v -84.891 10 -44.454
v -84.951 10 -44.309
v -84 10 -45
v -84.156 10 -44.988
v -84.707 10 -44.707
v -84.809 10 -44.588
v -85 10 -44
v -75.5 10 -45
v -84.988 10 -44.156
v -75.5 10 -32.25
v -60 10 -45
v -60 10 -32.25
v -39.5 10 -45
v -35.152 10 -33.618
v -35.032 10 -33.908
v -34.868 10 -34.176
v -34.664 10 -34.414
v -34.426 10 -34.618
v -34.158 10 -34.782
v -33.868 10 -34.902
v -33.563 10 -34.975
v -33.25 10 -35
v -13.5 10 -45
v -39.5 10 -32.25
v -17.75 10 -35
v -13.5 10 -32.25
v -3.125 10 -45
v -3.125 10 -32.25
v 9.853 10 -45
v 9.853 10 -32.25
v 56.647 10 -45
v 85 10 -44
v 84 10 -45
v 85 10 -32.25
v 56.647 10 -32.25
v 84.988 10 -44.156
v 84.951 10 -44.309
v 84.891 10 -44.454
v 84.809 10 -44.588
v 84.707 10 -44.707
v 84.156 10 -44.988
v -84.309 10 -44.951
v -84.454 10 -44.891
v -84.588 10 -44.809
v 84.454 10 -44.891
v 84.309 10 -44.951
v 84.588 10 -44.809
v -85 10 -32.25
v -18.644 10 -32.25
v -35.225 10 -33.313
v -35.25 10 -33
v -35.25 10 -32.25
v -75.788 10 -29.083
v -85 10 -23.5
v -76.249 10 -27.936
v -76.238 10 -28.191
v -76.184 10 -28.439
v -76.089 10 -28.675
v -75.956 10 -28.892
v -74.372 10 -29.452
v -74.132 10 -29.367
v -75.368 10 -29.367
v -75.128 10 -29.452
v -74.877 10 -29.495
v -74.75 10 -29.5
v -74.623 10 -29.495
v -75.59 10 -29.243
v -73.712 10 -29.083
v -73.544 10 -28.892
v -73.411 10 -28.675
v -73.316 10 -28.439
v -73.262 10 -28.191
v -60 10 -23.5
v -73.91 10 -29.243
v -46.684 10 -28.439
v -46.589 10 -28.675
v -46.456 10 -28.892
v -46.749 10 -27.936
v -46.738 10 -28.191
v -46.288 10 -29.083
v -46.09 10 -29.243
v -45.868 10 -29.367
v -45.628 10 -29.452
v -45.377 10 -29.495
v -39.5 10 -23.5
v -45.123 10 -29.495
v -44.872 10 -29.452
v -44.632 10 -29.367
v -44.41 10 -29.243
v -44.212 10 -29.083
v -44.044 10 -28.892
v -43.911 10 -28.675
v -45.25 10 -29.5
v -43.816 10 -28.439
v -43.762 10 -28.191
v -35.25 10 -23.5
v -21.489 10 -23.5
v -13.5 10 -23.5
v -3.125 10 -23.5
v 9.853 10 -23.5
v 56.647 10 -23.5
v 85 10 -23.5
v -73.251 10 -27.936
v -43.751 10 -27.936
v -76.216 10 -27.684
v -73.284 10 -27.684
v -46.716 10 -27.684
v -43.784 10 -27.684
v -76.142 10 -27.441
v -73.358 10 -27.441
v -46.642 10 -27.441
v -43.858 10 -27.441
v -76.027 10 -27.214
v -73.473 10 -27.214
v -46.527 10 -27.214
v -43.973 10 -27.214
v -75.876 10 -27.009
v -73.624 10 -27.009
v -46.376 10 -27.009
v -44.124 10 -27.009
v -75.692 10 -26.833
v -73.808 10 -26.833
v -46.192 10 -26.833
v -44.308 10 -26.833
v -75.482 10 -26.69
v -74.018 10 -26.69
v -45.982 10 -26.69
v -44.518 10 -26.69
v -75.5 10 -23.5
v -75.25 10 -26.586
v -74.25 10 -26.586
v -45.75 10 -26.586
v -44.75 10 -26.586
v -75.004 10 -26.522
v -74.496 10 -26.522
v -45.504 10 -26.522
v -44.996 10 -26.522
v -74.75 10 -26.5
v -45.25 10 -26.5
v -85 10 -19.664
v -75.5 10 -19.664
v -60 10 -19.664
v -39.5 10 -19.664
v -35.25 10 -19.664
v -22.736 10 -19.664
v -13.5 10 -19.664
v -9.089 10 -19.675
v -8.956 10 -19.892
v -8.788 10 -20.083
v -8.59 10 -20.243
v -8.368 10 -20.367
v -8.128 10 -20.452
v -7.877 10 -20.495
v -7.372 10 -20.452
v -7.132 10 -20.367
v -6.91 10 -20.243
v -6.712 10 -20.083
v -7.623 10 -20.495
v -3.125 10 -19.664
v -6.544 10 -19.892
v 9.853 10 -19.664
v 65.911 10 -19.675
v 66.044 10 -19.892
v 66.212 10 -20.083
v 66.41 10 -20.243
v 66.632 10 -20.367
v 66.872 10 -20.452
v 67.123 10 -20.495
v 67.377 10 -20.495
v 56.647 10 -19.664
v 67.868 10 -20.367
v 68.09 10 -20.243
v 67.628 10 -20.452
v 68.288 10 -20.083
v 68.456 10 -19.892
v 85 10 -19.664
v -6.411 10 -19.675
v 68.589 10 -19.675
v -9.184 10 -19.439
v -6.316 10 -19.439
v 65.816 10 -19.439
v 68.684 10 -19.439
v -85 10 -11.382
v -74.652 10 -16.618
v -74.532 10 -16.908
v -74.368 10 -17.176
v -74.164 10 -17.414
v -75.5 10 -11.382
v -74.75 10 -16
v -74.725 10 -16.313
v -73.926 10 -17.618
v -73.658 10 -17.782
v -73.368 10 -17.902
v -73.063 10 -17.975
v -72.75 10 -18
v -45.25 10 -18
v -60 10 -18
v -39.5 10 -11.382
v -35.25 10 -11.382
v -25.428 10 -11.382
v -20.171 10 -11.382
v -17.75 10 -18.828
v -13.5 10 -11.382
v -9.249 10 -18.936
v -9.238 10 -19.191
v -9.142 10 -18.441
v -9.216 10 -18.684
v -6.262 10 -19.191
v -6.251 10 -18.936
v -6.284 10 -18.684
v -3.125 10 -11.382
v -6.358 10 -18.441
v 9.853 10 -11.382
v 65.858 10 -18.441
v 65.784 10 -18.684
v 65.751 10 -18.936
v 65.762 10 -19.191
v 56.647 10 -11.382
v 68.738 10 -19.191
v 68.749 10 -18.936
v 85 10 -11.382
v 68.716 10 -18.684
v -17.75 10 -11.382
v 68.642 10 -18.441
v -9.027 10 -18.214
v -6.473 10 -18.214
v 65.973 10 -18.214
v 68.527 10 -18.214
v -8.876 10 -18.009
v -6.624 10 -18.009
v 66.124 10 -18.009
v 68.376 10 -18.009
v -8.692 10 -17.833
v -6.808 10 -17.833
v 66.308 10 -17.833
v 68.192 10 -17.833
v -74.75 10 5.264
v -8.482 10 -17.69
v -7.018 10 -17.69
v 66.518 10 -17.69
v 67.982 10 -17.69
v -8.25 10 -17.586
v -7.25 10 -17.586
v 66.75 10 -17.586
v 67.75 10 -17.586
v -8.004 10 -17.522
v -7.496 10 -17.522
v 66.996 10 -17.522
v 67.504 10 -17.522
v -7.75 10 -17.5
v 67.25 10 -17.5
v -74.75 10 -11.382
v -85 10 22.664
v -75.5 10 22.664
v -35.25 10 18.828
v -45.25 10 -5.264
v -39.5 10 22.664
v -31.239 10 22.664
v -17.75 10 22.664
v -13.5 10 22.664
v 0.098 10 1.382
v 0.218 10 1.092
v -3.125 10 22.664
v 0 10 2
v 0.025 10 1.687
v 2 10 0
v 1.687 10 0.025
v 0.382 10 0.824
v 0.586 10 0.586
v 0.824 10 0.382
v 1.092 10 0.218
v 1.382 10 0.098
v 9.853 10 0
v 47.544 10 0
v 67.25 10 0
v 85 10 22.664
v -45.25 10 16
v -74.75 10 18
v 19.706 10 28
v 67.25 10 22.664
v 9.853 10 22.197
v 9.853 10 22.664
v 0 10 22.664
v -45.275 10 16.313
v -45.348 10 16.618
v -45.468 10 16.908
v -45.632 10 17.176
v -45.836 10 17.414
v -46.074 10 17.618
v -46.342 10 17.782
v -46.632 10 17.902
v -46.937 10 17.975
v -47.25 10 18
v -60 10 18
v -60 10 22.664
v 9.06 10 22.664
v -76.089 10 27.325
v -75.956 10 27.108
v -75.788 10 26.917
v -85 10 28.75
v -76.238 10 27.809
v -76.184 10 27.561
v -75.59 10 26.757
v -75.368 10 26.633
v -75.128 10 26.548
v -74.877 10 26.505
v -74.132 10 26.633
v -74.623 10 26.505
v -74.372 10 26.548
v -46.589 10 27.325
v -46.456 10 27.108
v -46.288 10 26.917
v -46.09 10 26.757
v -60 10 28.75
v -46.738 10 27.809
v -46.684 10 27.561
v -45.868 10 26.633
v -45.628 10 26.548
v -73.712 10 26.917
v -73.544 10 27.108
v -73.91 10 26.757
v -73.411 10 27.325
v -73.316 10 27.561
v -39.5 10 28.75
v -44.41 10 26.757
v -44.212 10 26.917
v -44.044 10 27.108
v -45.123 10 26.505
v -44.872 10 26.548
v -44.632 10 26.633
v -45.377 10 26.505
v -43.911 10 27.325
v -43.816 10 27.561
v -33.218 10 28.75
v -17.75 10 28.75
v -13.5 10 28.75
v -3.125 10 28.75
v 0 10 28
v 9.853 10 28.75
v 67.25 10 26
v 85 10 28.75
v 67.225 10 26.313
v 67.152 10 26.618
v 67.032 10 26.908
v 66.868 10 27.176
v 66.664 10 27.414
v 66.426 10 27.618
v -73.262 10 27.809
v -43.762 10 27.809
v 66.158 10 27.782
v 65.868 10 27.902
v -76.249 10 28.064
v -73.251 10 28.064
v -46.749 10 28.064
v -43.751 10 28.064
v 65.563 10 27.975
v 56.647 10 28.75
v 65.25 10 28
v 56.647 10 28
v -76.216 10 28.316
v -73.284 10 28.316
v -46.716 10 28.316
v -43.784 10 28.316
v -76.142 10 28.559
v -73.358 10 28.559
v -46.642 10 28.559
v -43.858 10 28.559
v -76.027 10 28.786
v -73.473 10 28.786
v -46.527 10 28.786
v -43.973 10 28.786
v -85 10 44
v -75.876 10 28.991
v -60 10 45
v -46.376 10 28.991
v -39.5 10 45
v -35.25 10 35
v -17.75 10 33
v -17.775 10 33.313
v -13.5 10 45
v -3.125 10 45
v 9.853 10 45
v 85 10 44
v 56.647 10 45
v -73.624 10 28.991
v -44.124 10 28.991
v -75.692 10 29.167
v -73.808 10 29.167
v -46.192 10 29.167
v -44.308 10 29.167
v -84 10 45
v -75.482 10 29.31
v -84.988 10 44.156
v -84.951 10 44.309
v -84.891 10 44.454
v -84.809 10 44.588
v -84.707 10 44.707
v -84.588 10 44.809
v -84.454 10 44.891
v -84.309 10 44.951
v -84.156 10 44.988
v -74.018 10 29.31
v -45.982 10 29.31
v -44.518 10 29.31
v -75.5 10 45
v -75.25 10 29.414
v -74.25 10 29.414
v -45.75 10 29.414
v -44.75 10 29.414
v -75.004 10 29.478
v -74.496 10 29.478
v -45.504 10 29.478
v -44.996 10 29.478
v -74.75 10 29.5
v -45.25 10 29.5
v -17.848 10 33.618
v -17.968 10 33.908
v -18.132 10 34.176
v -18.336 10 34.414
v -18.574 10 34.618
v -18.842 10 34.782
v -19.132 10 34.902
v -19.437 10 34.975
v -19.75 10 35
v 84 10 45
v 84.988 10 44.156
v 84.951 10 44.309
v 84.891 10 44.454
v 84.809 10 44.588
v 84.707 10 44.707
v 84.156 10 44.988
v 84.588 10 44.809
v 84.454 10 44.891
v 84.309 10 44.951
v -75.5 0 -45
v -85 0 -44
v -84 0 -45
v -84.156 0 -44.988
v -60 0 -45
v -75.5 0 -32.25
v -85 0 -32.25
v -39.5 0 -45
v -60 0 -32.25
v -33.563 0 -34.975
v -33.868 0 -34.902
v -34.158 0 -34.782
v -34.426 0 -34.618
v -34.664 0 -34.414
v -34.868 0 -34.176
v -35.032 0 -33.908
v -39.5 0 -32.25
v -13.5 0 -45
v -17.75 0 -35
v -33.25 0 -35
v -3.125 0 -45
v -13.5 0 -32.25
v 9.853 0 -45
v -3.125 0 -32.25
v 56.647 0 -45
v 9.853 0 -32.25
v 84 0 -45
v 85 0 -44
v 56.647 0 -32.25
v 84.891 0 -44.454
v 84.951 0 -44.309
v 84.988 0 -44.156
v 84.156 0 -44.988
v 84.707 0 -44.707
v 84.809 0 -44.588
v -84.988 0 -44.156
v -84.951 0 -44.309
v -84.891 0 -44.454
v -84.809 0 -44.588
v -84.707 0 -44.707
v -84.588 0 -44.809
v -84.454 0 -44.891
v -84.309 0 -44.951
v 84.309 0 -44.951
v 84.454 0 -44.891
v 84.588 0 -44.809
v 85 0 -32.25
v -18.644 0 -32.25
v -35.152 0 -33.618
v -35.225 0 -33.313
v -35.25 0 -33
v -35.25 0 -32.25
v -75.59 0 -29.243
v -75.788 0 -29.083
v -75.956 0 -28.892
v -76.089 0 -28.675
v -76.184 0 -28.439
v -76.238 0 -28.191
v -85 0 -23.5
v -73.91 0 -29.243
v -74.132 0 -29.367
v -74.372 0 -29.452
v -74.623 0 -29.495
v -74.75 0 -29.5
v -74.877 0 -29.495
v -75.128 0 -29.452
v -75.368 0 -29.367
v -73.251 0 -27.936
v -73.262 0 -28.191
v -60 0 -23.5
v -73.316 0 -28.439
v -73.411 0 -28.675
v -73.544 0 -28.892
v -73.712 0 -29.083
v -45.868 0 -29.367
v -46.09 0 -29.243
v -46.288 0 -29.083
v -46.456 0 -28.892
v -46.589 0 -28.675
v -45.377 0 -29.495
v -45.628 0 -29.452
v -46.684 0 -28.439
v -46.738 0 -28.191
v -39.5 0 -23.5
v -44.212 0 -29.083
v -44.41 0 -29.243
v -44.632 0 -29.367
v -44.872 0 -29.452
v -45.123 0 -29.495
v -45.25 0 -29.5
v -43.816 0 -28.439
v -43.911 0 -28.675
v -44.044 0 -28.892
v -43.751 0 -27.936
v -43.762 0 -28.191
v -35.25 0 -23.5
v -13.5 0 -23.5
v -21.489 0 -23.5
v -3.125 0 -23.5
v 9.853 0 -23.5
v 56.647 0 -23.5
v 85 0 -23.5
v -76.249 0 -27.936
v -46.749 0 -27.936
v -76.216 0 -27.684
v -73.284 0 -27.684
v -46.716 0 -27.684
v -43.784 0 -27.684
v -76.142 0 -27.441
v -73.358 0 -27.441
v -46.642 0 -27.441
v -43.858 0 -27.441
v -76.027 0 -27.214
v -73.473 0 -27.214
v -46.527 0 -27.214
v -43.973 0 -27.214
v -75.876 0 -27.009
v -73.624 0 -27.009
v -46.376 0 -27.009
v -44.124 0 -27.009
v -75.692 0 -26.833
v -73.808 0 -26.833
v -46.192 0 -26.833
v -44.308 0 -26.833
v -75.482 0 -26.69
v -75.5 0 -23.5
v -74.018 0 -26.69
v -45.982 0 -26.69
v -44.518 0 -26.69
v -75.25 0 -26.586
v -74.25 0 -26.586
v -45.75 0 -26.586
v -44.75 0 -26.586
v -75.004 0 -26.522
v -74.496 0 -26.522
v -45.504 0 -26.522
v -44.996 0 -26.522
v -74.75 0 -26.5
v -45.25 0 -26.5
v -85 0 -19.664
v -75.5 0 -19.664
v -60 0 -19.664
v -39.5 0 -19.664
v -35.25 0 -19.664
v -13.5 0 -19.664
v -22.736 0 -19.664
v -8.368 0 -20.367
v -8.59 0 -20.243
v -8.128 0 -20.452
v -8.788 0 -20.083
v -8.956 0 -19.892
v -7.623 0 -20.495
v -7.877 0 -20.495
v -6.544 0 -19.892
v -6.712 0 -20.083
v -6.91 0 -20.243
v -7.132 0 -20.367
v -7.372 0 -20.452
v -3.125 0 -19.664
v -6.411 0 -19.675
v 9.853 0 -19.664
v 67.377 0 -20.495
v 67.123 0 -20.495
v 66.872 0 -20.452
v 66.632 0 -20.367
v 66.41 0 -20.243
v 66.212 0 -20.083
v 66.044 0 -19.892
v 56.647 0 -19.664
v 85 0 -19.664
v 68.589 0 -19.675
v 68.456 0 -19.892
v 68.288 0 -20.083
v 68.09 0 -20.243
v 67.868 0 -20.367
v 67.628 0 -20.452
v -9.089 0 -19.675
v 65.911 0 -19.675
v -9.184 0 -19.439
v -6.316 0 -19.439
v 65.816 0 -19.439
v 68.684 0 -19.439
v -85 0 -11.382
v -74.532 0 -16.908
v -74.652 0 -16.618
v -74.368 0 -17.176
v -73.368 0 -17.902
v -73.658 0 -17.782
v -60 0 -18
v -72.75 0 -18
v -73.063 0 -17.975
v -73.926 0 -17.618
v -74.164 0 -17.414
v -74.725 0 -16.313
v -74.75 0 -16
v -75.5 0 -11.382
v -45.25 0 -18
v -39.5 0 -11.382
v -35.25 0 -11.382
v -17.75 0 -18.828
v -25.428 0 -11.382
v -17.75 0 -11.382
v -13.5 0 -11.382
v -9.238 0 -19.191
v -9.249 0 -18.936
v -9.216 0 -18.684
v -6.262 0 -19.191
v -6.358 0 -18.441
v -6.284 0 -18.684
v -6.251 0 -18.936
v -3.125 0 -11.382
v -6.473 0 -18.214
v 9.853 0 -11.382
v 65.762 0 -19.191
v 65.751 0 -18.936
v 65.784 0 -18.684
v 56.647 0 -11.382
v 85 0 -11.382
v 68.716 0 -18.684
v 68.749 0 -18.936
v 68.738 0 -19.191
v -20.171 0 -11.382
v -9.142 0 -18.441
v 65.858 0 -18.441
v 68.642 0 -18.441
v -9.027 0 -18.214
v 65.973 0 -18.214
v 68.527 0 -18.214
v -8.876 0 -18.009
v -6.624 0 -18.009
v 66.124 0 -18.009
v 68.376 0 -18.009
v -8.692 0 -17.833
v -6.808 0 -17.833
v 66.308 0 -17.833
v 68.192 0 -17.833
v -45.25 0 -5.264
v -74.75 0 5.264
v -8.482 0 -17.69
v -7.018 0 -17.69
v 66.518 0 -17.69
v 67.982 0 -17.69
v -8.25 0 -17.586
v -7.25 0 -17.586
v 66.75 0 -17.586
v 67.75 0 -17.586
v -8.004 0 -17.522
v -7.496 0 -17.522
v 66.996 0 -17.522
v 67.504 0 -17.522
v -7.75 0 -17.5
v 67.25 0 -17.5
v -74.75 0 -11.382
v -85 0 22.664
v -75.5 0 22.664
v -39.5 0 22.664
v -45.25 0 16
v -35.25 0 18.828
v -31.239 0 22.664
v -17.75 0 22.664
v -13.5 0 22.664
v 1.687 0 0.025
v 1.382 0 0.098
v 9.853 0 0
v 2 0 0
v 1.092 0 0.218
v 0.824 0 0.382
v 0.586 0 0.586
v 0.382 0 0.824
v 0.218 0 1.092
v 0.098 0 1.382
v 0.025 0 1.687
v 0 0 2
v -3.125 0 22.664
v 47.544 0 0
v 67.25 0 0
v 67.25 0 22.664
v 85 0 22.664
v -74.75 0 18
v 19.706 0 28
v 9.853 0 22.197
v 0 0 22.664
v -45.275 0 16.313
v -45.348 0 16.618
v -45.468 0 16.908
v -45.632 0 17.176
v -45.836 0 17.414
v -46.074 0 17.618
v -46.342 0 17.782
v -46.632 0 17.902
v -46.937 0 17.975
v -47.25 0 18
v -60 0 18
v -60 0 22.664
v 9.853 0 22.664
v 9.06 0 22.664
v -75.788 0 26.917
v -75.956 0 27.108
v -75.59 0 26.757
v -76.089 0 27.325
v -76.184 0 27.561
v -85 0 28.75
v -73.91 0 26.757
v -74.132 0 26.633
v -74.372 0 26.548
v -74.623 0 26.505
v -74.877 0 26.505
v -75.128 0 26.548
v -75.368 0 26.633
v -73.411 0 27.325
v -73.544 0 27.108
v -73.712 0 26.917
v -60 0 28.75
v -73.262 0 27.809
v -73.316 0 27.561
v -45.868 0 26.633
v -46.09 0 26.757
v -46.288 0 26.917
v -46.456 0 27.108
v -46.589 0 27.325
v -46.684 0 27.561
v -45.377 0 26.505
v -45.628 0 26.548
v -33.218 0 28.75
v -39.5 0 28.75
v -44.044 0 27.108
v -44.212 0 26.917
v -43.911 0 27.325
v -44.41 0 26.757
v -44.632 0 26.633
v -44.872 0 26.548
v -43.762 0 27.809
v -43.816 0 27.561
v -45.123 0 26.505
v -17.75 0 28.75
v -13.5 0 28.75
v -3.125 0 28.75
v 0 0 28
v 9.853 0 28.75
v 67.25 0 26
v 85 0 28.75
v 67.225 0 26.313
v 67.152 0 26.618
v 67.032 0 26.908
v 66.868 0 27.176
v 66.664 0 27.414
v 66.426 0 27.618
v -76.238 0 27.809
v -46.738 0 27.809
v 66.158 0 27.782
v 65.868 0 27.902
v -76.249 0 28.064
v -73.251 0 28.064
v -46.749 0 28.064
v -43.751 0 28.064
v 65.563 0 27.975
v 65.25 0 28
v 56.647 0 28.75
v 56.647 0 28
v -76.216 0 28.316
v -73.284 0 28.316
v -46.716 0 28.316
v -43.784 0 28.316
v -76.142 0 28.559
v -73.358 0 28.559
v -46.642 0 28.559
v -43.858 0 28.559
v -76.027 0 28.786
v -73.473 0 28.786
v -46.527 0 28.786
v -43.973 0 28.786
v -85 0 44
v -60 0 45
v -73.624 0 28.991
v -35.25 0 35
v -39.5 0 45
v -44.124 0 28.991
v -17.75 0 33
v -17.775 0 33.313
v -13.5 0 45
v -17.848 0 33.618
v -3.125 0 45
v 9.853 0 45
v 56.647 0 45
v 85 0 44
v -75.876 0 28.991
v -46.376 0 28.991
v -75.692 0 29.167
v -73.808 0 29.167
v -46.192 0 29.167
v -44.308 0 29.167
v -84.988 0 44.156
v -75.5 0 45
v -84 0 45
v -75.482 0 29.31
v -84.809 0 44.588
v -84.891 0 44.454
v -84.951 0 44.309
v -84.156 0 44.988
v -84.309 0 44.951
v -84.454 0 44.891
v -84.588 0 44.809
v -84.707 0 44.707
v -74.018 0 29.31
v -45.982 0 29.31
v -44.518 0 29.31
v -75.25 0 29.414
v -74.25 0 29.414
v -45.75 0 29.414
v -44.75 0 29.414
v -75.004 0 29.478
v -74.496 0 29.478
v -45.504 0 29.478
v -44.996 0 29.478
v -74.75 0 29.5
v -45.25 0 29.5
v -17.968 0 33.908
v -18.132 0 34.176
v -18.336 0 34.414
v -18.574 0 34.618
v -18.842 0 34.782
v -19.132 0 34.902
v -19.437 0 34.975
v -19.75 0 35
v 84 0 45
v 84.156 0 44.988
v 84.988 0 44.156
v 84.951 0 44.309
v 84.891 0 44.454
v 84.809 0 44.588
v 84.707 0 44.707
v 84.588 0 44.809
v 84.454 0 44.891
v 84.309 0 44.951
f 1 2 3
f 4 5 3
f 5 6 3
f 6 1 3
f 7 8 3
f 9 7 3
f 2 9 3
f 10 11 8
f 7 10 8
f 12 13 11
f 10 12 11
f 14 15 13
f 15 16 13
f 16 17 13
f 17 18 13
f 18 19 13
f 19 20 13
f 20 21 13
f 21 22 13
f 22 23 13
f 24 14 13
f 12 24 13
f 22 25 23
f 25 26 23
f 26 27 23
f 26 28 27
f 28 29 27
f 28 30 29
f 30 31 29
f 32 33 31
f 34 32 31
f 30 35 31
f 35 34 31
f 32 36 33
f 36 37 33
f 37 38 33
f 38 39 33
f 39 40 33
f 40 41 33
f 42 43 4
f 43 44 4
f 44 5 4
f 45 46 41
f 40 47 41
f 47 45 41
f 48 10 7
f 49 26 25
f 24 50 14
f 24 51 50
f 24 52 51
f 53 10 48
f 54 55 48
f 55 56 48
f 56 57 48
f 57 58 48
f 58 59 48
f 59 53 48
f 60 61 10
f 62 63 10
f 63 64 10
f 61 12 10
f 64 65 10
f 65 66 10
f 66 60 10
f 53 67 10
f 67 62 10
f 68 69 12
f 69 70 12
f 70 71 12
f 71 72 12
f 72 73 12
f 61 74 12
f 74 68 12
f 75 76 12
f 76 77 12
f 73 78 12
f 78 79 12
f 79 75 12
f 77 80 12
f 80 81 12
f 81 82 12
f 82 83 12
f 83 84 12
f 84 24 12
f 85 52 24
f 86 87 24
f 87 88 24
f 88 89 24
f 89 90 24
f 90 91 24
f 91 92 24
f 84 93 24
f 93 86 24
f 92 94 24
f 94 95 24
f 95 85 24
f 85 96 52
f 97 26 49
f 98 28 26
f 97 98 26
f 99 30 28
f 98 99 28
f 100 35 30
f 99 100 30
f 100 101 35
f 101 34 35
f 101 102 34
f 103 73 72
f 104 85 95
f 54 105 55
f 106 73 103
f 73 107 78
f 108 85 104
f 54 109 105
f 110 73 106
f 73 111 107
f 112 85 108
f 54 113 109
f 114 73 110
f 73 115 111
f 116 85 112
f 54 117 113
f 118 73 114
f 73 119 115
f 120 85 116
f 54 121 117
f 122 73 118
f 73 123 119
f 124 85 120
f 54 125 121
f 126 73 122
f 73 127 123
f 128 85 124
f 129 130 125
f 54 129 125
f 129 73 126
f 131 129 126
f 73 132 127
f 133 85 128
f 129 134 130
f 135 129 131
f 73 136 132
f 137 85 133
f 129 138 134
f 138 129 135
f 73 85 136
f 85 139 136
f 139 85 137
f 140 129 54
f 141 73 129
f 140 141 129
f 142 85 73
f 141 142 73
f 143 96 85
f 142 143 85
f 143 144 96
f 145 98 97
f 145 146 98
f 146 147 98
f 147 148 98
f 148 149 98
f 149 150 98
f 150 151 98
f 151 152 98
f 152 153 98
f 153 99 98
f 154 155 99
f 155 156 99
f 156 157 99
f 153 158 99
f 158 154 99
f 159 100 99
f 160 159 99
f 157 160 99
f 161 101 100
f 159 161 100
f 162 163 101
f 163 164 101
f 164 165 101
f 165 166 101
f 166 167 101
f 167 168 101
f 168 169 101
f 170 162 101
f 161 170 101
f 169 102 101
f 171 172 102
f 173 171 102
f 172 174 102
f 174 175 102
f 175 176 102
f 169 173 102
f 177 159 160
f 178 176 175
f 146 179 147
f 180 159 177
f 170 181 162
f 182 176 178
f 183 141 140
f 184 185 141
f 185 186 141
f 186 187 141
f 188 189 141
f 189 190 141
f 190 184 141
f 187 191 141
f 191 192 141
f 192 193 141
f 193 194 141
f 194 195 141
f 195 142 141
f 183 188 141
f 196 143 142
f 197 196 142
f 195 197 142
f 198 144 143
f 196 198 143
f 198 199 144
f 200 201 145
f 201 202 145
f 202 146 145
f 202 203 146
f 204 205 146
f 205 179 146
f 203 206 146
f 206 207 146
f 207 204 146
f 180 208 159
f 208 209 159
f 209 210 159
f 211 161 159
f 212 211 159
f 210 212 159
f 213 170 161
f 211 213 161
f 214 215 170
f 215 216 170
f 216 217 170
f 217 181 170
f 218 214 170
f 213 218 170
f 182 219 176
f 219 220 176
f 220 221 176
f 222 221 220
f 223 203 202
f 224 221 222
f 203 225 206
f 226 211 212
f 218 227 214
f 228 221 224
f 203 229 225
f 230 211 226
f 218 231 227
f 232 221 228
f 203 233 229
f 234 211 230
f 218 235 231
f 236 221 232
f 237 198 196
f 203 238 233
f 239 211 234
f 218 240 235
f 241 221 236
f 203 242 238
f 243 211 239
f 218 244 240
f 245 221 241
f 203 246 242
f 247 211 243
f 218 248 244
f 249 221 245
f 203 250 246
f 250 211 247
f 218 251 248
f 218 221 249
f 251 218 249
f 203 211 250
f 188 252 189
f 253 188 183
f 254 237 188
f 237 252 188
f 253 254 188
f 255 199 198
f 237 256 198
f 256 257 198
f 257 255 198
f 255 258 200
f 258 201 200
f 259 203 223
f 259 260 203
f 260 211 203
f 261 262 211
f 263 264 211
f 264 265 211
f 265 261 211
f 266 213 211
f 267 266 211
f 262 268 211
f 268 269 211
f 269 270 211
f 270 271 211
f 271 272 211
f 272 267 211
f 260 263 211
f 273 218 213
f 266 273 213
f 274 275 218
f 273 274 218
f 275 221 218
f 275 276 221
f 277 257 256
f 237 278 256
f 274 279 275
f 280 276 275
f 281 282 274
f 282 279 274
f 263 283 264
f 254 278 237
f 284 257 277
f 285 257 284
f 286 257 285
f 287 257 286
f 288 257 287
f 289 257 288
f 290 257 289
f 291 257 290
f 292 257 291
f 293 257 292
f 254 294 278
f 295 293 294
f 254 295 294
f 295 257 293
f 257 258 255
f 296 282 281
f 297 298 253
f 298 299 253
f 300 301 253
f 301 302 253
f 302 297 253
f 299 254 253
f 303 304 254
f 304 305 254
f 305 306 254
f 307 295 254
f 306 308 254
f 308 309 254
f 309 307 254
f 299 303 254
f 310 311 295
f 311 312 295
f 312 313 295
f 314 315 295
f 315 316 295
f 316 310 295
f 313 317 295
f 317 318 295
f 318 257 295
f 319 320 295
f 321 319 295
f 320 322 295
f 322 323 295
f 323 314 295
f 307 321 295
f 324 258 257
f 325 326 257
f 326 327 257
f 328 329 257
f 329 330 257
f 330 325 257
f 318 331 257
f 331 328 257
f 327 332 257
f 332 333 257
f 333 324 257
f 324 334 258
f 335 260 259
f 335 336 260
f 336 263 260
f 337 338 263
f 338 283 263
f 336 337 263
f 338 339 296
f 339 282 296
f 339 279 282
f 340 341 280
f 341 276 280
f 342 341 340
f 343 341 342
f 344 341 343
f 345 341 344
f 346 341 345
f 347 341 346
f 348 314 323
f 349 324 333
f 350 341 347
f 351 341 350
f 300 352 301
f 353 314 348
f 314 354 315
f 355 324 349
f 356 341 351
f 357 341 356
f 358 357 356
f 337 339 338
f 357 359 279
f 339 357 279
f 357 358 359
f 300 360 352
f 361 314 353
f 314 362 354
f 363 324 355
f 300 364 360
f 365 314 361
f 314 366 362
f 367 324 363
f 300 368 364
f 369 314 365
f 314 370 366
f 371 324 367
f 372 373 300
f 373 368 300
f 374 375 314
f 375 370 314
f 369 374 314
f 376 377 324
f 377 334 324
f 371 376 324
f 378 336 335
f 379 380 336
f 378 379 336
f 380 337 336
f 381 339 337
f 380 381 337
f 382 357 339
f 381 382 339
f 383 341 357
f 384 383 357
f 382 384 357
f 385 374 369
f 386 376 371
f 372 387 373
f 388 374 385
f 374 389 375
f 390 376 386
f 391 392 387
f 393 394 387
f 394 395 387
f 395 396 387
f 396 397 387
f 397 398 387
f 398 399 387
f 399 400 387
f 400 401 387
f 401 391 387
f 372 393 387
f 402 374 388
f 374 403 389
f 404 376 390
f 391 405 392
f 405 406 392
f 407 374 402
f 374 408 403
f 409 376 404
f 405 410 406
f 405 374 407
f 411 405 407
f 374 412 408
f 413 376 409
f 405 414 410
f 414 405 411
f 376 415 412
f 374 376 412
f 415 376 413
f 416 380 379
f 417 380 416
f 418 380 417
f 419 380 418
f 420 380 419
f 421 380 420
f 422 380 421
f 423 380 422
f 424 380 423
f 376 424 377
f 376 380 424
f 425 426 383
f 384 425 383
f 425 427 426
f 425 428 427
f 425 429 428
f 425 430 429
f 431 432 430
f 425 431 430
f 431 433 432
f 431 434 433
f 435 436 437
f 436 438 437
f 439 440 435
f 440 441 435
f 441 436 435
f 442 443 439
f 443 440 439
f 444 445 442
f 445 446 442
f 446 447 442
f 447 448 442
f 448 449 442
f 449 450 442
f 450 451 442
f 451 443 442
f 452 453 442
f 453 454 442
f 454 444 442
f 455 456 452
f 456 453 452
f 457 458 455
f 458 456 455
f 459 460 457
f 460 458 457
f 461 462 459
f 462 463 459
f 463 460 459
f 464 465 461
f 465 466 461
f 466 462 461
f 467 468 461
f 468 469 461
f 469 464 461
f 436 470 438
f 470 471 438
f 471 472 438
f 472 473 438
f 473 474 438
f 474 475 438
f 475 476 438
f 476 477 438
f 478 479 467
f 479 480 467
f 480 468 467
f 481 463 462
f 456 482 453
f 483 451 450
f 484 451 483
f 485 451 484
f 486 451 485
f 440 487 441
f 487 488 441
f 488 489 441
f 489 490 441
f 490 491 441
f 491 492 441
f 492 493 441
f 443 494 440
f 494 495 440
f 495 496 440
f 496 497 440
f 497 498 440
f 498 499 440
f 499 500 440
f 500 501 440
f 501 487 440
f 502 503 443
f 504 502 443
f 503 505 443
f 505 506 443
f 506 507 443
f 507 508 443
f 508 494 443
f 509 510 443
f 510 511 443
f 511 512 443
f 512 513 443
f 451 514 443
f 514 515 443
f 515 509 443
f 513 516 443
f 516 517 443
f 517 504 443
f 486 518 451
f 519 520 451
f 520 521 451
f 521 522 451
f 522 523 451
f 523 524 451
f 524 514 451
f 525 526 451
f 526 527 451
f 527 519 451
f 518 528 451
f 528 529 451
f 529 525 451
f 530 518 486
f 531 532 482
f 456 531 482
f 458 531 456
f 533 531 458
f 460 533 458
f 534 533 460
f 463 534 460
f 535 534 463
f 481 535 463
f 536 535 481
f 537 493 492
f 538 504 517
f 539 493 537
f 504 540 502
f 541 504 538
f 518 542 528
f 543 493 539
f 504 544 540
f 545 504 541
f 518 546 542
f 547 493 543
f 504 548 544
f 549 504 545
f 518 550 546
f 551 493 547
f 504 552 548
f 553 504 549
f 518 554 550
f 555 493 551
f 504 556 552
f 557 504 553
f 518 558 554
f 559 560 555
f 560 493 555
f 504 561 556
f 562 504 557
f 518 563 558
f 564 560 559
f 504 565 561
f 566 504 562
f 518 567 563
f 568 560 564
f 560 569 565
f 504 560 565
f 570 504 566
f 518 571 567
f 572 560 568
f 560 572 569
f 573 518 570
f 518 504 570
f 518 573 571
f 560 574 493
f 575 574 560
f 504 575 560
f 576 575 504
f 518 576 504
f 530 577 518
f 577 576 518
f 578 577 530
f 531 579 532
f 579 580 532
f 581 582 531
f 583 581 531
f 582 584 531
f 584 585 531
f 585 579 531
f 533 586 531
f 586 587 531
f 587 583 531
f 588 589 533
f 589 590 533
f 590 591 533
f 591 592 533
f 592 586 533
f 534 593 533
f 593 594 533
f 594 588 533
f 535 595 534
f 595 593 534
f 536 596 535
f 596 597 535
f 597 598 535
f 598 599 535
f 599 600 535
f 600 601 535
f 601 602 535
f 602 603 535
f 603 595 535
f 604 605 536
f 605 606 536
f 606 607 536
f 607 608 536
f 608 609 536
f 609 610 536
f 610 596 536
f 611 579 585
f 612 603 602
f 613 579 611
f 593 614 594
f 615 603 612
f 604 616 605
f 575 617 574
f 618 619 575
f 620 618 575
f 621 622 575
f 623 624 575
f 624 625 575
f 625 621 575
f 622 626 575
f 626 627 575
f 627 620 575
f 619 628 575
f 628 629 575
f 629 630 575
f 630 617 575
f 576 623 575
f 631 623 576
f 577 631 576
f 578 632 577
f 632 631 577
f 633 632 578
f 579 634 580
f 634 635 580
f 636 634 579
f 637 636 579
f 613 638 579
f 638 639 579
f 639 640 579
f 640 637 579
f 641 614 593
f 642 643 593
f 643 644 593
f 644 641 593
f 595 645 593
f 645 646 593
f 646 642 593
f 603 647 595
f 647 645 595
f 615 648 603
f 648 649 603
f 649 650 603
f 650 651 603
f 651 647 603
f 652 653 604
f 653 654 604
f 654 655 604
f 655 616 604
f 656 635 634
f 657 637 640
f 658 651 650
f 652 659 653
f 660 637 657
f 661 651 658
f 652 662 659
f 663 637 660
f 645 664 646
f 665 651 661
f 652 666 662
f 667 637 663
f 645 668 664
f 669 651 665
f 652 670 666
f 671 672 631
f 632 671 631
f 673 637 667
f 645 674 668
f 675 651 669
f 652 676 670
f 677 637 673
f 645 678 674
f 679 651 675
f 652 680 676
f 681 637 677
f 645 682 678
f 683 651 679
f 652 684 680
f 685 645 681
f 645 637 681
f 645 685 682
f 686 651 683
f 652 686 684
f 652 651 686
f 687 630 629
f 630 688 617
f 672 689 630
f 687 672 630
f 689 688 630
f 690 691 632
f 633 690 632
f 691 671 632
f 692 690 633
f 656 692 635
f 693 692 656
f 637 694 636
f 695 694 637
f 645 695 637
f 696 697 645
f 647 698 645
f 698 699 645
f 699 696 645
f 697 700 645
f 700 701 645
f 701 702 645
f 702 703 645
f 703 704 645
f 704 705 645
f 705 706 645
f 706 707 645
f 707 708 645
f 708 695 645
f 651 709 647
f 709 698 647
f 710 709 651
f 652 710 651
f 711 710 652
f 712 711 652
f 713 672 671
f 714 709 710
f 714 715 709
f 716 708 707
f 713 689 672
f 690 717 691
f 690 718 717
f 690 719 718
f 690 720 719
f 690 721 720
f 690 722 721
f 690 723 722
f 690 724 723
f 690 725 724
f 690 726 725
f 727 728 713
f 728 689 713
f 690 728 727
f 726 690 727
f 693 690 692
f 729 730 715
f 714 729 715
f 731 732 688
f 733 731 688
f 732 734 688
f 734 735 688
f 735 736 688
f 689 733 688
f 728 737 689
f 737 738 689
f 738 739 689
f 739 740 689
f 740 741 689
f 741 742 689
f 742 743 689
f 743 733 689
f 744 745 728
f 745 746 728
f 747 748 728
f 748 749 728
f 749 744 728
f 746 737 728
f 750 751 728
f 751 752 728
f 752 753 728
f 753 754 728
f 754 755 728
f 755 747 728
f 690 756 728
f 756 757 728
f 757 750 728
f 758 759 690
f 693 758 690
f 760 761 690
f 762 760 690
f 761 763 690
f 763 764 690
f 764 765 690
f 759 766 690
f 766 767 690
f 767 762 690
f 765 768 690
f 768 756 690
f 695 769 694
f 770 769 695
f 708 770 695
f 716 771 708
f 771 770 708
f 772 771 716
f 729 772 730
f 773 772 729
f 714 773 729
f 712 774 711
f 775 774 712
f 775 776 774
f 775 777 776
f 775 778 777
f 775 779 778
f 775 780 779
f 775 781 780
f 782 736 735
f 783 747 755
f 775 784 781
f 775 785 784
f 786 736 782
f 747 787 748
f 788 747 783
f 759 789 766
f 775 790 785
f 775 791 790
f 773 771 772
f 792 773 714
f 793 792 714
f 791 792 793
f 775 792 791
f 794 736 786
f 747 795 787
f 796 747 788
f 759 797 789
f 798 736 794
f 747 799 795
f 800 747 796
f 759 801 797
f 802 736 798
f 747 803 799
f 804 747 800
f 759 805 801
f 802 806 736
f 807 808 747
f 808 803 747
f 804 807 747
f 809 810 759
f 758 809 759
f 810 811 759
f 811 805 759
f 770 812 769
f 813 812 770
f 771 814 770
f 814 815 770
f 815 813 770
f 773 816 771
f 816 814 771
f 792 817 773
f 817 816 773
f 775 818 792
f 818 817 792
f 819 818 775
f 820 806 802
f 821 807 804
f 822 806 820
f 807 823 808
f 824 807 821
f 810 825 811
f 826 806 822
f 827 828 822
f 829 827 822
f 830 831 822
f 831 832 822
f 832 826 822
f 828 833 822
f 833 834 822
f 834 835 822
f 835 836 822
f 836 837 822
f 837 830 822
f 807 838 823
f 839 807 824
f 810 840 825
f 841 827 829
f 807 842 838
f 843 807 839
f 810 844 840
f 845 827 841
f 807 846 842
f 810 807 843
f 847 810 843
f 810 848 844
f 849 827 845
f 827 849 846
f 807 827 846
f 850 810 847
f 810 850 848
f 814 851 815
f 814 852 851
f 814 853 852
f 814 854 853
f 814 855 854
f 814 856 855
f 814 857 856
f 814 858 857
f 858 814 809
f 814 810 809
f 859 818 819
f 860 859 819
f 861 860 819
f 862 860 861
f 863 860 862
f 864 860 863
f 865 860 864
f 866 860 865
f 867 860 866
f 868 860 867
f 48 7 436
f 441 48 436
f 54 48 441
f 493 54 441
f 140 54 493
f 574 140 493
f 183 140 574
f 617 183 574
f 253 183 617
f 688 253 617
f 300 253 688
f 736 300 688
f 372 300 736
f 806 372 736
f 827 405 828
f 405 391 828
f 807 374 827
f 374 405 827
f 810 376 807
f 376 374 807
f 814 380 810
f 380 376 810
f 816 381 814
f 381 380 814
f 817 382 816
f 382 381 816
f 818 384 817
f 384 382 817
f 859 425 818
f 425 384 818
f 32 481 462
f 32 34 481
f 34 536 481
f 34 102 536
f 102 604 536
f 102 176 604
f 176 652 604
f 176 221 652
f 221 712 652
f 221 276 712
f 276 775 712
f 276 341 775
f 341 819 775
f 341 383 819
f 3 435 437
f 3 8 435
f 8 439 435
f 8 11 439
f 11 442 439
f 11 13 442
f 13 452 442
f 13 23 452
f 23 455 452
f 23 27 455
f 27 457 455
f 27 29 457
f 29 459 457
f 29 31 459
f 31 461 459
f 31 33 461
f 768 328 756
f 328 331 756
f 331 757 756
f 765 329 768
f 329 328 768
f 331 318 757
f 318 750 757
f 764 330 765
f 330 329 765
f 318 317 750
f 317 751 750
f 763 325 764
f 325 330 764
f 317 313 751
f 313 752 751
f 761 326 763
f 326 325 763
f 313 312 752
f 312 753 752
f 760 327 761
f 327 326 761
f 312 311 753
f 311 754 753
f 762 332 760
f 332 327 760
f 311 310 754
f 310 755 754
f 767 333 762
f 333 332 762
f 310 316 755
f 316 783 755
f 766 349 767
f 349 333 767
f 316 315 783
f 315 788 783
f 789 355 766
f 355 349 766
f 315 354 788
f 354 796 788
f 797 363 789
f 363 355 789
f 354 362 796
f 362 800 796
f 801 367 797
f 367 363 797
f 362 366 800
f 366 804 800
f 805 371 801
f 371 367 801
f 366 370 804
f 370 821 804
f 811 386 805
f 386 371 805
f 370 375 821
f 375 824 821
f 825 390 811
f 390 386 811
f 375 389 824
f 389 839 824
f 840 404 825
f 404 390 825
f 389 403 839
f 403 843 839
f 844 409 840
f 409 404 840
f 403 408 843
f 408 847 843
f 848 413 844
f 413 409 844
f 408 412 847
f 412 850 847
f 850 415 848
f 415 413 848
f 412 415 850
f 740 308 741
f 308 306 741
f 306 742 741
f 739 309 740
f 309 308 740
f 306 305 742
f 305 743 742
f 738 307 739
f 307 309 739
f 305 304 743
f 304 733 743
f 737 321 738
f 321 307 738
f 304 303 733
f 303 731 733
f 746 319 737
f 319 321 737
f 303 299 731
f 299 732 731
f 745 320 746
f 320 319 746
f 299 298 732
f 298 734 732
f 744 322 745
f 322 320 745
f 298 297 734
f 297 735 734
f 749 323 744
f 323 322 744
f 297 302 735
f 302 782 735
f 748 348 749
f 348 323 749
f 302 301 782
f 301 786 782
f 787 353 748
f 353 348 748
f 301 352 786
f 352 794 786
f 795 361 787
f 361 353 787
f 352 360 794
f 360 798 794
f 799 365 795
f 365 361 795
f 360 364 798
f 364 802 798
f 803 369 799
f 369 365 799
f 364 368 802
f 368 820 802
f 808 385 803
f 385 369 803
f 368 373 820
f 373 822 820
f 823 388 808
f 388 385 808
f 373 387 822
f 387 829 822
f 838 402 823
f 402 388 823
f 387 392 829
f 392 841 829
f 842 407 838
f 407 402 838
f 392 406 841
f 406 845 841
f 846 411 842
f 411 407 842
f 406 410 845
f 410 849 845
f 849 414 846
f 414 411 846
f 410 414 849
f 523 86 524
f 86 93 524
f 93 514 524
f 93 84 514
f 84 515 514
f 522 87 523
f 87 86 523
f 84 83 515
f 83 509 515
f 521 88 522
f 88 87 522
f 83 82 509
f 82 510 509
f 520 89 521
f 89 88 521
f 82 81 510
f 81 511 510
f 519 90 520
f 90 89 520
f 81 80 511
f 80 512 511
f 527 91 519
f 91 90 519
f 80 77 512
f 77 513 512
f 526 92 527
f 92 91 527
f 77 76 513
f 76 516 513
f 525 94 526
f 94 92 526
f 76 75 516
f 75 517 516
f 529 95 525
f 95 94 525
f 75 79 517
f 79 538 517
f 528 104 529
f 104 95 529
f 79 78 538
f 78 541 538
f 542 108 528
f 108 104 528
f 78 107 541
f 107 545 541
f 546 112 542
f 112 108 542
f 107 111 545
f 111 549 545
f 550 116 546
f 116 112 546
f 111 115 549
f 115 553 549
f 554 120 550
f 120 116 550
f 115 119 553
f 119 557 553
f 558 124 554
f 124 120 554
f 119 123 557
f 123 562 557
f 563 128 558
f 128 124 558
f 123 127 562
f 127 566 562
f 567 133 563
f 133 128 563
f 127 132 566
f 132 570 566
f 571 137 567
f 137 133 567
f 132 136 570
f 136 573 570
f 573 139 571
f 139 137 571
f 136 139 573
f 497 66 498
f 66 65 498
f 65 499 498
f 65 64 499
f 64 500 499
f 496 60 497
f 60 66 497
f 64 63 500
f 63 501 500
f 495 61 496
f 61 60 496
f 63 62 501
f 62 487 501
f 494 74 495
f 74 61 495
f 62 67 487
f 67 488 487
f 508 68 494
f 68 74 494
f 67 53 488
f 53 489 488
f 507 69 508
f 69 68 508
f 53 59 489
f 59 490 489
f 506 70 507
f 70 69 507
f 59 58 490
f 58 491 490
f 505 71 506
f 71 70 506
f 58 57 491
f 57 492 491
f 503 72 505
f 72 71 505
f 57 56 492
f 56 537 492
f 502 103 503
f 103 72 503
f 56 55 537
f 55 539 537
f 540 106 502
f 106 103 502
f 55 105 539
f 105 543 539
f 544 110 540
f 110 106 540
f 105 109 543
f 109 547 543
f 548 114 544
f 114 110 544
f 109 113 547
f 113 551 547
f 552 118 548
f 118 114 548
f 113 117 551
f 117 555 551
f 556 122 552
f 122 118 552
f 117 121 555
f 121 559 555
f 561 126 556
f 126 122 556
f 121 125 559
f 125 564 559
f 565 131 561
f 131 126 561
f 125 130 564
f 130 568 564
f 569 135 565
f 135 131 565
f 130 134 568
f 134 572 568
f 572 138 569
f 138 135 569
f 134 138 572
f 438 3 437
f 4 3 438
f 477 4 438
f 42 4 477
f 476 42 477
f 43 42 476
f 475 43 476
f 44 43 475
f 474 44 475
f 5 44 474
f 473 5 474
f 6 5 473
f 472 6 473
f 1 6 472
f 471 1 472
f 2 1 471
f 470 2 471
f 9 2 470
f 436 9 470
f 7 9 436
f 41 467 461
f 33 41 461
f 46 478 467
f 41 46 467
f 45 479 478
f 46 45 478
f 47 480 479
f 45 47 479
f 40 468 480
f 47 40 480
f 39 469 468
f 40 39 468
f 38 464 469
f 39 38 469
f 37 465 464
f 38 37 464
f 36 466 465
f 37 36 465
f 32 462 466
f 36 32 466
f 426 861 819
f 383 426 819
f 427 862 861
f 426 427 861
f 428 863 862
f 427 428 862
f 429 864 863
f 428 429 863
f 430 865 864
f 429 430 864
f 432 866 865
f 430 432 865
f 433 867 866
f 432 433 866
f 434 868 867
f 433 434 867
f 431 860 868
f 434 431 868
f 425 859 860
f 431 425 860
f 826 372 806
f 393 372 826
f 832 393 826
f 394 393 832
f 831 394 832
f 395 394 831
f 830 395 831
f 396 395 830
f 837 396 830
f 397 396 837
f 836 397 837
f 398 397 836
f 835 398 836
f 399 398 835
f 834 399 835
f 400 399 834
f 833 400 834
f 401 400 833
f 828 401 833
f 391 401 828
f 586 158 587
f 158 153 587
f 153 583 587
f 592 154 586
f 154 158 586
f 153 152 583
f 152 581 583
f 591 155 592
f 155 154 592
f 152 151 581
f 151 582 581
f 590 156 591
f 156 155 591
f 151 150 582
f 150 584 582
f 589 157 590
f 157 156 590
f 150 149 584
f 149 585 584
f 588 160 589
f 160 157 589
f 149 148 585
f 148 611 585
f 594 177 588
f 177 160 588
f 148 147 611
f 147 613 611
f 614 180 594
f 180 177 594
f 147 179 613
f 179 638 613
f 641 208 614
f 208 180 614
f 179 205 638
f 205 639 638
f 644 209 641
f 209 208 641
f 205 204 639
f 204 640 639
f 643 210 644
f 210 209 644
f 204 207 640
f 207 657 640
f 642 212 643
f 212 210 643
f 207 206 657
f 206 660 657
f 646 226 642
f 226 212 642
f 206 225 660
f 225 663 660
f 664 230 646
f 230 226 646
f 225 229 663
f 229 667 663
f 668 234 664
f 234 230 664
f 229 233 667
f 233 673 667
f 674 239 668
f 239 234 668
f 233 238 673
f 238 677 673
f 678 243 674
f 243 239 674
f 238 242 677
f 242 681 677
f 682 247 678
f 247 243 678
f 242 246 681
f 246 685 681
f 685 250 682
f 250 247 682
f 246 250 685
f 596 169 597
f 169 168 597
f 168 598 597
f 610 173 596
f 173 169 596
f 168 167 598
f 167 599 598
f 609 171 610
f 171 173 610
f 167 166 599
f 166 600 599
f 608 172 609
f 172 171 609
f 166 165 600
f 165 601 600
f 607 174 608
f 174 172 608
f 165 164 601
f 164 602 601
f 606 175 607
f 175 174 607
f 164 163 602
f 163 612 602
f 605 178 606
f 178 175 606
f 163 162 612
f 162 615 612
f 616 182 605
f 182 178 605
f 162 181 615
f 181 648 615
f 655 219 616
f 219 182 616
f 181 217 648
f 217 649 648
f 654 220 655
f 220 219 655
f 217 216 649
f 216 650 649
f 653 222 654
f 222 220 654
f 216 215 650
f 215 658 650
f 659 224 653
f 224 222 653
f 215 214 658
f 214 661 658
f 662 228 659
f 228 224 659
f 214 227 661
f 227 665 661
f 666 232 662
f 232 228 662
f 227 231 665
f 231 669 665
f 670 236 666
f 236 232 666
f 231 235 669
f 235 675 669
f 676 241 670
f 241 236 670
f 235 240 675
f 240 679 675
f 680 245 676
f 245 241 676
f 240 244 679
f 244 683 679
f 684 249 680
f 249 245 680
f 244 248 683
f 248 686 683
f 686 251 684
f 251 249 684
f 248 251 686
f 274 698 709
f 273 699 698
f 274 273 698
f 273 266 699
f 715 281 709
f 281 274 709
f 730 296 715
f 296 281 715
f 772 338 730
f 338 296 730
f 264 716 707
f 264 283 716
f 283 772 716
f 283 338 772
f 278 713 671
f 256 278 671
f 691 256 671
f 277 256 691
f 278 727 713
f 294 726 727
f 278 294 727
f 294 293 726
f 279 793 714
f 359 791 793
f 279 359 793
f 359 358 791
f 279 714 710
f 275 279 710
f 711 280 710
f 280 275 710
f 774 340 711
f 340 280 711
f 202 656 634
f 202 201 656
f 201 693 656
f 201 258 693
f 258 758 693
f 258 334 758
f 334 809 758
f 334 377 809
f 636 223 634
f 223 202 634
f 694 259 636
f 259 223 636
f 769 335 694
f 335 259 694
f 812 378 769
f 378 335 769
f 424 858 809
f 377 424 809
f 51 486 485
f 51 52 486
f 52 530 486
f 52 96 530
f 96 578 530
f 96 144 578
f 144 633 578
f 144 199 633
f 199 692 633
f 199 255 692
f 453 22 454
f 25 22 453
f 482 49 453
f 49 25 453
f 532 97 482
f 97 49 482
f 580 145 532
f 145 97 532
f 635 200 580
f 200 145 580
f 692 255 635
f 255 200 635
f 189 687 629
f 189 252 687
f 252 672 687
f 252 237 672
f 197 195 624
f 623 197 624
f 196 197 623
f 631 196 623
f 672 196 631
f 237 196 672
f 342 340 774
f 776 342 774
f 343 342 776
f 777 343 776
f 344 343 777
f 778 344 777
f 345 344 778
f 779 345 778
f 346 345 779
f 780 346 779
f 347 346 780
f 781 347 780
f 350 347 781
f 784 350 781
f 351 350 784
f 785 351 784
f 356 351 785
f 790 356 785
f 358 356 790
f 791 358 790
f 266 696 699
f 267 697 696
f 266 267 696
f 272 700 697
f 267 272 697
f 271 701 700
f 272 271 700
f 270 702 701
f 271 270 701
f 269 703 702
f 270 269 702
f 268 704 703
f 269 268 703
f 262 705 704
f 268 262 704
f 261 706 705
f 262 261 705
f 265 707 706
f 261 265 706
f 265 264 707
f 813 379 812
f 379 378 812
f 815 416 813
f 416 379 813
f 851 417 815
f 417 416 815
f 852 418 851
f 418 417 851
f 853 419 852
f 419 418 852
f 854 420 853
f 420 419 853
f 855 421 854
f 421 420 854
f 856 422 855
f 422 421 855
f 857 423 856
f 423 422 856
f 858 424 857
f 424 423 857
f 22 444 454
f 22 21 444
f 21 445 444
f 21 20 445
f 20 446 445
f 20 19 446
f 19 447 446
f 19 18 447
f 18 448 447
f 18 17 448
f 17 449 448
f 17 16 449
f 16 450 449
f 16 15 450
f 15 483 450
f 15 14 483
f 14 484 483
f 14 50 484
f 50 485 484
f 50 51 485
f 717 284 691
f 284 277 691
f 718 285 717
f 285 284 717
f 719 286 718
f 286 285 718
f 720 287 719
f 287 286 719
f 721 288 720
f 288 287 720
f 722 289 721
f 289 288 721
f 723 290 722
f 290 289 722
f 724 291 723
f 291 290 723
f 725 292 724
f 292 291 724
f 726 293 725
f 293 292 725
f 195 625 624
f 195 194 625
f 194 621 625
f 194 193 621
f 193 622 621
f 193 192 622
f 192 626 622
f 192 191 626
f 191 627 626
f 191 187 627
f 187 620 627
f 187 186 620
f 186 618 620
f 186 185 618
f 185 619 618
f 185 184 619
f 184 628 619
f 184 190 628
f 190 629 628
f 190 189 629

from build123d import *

# Parameters (mm, degrees)
SKETCH1_W           = 170
SKETCH1_H           = 90
BOSS_EXTRUDE1_DEPTH = 10
SKETCH2_R           = 1.5
CUT_EXTRUDE1_DEPTH  = 11
FILLET1_R           = 1
SKETCH2_9_R         = 1.5
CUT_EXTRUDE2_DEPTH  = 11
CUT_EXTRUDE3_DEPTH  = 11
FILLET3_R           = 2


with BuildPart() as part:
    # Sketch1 → Boss-Extrude1 (new body)
    with BuildSketch(Plane(origin=(0, 0, 0), x_dir=(1, 0, 0), z_dir=(0, 1, 0))):
        Rectangle(SKETCH1_W, SKETCH1_H)
    extrude(amount=BOSS_EXTRUDE1_DEPTH)

    # Sketch2 → Cut-Extrude1 (cut, through all)
    with BuildSketch(Plane(origin=(0, 10, 0), x_dir=(1, 0, 0), z_dir=(0, 1, 0))):
        with Locations((-74.75, -28)):
            Circle(SKETCH2_R)
        with Locations((-45.25, -28)):
            Circle(SKETCH2_R)
    cut_extrude1 = extrude(amount=-CUT_EXTRUDE1_DEPTH, mode=Mode.SUBTRACT)

    # Mirror1: Cut-Extrude1 across plane
    add(cut_extrude1.mirror(Plane.XY), mode=Mode.SUBTRACT)

    # Fillet1
    fillet1_edges = [part.edges().sort_by_distance(p)[0] for p in [
        (-85, 5, -45),
        (85, 5, -45),
        (85, 5, 45),
        (-85, 5, 45),
    ]]
    fillet(fillet1_edges, radius=FILLET1_R)

    # Sketch2<9> → Cut-Extrude2 (cut, through all)
    with BuildSketch(Plane(origin=(0, 10, 0), x_dir=(1, 0, 0), z_dir=(0, 1, 0))):
        with Locations((67.25, 19)):
            Circle(SKETCH2_9_R)
        with Locations((-7.75, 19)):
            Circle(SKETCH2_9_R)
    extrude(amount=-CUT_EXTRUDE2_DEPTH, mode=Mode.SUBTRACT)

    # Sketch3 → Cut-Extrude3 (cut, through all)
    with BuildSketch(Plane(origin=(0, 10, 0), x_dir=(1, 0, 0), z_dir=(0, 1, 0))):
        Polygon((0, 0), (0, -28), (47.544117112, 0), align=None)
        Polygon((67.25, 0), (19.705882888, -28), (67.25, -28), align=None)
        Polygon((-35.25, -35), (-17.75, -35), (-17.75, 18.828164368), align=None)
        Polygon((-35.25, 35), (-35.25, -18.828164368), (-17.75, 35), align=None)
        Polygon((-74.75, 18), (-74.75, -5.264489844), (-45.25, 18), align=None)
        Polygon((-74.75, -18), (-45.25, -18), (-45.25, 5.264489844), align=None)
    extrude(amount=-CUT_EXTRUDE3_DEPTH, mode=Mode.SUBTRACT)

    # Fillet3
    fillet3_edges = [part.edges().sort_by_distance(p)[0] for p in [
        (-17.75, 5, 35),
        (67.25, 5, 28),
        (-45.25, 5, 18),
        (0, 5, 0),
        (-74.75, 5, -18),
        (-35.25, 5, -35),
    ]]
    fillet(fillet3_edges, radius=FILLET3_R)


solid = part.part
